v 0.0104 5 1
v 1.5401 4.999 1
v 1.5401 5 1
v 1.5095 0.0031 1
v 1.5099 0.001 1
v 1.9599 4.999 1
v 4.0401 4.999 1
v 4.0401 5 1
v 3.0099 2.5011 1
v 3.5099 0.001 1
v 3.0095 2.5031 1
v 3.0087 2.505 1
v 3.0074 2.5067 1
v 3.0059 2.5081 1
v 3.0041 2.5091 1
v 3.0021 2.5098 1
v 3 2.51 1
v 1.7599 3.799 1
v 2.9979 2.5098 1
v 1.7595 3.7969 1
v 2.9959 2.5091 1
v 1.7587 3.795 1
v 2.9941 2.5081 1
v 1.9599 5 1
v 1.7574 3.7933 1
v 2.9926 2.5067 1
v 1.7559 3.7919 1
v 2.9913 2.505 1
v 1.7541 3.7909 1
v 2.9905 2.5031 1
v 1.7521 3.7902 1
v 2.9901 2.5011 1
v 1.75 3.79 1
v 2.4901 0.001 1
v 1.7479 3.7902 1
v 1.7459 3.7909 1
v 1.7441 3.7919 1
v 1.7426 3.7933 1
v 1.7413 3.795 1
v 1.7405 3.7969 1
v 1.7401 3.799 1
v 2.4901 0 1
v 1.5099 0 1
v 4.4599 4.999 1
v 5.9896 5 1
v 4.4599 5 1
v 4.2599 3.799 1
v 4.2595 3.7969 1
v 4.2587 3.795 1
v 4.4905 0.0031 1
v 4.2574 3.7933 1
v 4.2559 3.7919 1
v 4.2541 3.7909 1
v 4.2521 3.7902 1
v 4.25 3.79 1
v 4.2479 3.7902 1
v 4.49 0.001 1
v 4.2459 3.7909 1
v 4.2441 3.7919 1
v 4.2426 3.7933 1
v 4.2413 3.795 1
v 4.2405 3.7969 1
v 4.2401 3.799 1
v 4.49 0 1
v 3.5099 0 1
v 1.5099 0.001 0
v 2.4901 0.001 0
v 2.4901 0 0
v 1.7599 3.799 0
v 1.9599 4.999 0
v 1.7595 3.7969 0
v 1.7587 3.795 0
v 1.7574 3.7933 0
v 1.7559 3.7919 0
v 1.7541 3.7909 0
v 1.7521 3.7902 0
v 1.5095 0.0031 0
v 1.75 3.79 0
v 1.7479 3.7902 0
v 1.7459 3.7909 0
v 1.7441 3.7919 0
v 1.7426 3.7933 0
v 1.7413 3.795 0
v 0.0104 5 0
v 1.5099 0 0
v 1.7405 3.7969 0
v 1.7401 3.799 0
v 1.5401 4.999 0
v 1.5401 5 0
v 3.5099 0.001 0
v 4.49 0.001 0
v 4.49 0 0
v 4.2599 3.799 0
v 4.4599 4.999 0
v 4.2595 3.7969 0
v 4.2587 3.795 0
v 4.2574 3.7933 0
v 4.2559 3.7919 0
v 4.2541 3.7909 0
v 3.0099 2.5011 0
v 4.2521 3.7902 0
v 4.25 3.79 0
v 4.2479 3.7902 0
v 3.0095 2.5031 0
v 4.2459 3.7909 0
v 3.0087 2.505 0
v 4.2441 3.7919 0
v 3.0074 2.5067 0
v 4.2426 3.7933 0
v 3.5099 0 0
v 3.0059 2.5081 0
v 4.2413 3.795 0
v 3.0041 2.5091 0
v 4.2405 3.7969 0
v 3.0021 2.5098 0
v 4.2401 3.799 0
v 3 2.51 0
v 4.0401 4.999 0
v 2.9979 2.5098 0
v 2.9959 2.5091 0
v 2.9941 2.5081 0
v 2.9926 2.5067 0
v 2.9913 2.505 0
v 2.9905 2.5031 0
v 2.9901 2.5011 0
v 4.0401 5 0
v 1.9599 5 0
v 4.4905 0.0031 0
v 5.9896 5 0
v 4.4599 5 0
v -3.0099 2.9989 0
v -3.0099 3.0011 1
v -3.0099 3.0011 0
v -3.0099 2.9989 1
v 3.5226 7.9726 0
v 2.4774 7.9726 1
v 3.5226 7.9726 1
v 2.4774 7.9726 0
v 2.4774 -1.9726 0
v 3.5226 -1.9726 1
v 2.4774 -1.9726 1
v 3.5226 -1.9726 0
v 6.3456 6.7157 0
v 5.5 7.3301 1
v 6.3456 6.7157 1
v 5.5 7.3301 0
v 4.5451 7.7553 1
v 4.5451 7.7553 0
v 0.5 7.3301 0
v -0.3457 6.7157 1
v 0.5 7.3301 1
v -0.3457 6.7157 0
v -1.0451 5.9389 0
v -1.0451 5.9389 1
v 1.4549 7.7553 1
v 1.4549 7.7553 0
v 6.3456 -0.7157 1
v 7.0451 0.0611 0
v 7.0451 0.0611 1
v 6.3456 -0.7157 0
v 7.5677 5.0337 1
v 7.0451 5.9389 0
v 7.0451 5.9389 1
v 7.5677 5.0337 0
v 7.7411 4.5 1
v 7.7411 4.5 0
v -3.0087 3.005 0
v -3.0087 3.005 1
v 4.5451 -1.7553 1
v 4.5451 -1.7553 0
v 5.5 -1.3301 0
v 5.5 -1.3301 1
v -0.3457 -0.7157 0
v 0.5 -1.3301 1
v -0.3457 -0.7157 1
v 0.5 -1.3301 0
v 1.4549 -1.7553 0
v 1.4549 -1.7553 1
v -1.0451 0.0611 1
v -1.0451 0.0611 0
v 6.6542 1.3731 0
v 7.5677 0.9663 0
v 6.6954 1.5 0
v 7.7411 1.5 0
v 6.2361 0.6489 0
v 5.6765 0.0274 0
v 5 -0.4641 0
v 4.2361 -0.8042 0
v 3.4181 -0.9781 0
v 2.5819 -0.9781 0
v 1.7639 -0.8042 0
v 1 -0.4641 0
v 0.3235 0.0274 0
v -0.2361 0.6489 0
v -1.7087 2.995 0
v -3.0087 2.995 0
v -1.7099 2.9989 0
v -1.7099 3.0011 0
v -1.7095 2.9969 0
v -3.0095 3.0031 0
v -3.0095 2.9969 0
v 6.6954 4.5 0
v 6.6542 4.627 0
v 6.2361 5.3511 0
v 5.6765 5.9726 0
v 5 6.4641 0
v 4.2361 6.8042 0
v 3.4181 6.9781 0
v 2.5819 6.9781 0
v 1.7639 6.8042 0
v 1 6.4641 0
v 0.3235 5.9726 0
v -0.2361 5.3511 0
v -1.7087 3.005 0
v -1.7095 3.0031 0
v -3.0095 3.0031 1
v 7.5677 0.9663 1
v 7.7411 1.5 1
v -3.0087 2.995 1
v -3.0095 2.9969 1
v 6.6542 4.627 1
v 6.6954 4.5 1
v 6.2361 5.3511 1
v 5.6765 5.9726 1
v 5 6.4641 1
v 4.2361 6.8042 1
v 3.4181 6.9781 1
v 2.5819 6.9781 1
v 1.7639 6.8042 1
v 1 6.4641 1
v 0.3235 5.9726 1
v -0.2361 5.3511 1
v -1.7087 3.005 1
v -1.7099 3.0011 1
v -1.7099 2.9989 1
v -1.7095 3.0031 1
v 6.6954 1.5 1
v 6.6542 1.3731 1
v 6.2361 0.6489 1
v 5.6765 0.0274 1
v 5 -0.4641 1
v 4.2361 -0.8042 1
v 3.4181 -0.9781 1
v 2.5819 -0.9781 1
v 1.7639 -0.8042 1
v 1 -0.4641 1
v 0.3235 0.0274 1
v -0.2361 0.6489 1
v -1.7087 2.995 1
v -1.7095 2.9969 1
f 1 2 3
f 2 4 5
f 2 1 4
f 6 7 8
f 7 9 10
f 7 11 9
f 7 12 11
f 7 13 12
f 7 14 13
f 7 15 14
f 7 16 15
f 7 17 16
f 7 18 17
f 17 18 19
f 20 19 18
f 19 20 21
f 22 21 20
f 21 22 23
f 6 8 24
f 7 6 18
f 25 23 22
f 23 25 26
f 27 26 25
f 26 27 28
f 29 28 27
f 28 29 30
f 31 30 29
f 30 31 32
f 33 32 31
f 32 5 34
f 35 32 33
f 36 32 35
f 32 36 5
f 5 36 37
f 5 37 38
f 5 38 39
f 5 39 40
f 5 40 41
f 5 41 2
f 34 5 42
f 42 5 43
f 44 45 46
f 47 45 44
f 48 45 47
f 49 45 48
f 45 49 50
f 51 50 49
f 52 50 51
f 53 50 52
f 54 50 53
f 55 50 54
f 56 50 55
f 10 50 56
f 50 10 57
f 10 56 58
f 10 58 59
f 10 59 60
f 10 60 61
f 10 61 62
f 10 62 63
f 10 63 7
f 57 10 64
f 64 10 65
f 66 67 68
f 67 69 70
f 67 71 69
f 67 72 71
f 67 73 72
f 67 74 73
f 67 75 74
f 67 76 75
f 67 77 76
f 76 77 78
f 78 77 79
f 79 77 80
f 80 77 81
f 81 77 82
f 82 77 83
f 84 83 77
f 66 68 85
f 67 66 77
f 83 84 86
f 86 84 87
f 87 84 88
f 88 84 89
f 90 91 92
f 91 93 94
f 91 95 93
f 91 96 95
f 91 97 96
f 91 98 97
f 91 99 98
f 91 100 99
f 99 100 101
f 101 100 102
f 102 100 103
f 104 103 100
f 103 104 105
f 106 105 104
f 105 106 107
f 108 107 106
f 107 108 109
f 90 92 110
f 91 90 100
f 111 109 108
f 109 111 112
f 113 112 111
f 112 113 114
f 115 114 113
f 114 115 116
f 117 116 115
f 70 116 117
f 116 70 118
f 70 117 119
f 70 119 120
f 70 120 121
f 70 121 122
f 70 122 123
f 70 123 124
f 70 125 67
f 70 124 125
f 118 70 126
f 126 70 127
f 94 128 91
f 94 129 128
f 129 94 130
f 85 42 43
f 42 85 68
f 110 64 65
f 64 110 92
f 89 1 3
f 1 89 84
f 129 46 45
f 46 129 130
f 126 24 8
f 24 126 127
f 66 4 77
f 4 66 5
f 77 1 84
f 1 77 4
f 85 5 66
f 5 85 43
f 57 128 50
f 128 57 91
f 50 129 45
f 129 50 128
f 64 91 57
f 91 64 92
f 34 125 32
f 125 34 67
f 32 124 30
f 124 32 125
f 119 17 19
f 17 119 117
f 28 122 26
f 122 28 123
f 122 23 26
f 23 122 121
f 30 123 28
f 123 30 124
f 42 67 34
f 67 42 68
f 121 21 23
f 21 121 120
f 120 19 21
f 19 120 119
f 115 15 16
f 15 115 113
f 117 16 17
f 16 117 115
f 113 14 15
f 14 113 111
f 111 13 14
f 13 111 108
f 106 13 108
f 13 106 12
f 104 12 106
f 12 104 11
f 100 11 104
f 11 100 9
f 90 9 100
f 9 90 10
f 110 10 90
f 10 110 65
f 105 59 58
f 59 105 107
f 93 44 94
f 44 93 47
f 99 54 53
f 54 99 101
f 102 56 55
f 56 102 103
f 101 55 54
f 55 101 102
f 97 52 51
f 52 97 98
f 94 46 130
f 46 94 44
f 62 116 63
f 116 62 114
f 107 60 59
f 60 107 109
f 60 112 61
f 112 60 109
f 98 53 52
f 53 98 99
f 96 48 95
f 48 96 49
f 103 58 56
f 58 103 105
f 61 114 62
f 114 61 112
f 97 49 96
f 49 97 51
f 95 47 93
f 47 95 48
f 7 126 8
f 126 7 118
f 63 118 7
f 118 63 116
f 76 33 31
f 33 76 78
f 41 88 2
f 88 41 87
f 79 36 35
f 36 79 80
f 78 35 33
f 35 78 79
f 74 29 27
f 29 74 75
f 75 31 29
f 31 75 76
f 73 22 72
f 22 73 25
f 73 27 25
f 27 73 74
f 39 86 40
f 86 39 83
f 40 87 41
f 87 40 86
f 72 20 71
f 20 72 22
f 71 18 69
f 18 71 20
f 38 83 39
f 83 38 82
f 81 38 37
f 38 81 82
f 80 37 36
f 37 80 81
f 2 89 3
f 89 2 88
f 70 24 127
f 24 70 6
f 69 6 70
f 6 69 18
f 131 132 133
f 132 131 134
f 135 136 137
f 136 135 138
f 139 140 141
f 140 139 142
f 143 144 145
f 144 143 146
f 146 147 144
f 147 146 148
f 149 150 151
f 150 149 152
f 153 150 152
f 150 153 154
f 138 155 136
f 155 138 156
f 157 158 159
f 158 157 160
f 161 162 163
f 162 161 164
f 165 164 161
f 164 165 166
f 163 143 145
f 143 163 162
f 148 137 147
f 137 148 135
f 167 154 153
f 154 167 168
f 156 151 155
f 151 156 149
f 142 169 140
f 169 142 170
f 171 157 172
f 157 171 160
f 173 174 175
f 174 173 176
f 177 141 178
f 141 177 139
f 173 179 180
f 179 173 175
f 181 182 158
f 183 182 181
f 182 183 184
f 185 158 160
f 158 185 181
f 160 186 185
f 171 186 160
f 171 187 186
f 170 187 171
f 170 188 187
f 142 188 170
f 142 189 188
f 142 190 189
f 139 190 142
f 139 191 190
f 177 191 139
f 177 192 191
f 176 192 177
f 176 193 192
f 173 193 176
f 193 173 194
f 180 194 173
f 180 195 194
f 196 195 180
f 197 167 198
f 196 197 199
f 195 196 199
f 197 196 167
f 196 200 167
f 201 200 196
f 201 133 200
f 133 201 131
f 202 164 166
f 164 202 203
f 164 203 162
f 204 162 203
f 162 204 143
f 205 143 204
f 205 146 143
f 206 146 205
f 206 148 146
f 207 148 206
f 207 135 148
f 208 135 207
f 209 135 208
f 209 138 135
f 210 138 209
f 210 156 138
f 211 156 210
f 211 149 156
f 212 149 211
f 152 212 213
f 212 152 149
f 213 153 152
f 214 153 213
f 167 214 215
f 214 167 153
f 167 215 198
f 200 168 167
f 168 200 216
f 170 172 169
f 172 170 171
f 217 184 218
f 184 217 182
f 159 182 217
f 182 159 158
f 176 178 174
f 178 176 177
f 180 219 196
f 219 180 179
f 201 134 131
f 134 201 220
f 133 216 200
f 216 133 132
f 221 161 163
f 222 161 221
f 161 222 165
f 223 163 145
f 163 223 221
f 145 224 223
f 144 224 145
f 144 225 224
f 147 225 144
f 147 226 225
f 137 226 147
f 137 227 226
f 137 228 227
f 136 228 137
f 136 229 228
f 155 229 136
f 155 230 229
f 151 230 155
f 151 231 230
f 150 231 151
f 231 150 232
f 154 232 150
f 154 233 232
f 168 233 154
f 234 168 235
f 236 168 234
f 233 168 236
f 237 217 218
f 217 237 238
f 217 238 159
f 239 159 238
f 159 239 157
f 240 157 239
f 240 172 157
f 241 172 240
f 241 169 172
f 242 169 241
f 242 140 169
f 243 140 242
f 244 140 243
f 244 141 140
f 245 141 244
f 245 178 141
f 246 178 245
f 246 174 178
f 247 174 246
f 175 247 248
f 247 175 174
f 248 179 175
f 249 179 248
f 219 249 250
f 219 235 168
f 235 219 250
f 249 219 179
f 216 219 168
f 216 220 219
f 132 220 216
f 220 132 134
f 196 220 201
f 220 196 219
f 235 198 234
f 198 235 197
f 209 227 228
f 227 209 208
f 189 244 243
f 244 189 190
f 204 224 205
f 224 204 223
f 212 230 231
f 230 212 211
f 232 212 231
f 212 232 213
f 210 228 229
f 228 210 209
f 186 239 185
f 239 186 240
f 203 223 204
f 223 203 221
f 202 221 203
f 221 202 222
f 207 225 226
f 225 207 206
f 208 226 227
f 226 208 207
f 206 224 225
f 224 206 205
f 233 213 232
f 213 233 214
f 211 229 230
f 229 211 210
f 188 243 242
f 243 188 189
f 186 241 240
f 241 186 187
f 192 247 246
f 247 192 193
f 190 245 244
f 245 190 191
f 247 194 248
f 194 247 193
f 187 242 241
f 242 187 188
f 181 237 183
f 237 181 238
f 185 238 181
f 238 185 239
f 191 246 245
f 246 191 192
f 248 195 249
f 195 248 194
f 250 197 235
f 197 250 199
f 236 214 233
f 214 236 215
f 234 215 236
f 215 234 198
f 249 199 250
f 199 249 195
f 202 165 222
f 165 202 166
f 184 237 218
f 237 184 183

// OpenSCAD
// left triangle 
module tri_left(where){
translate([where,3,0]){
rotate([0,0,90]){
triangle(1,1,0.01,1);
mirror([1,0,0]) triangle(1,1,0.01,1);

}
}
}


$fn = 30;
// bigger circle - smaller circle and move the centre -side cube

difference(){
 
    

difference(){
    // merge left triangle with the circle
    hull(){
   translate([3,3,0]) {cylinder(r=5,h=1);}
   tri_left(-2);
   }
   //merge inside left triangle with the circle
   hull(){
   translate([3,3,0]) {cylinder(r=4,h=1);}
   tri_left(-0.7);
   }
}

// side cube
translate([6.5,1.5,0]){cube([2.5,3,1]);}
}

//cube - triangle(origin) - triangle(non origin) - triangle(bottom) - triangle(top)
difference(){
difference(){
difference(){
difference(){
cube([6,5,1]);
  // rotate the right triangle 90 degree and mirror it
    mirror([1,0,0])rotate([0,0,90]){ triangle(5,1.5,0.01,1);} 

}
// 2nd triangle (non-origin)
 translate([6,0,0])rotate([0,0,90]){ triangle(5,1.5,0.01,1);} 
}
//call bottom triangle
bottom_triangle();
}
top_triangle();
}

// top triangles
module top_triangle(){
 //right one
gen_for_top(4.25);

//left one
mirror([1,0,0])
gen_for_top(-1.75);
}

// function to generate top triangle
module gen_for_top(where){
 translate([where,5,0]) {
rotate([0,0,-90]){ triangle(1.2,0.2,0.01,1);}
mirror([1,0,0])rotate([0,0,-90]){ triangle(1.2,0.2,0.01,1);}
}
}

//bottom triangle
module bottom_triangle(){
translate([3,0,0]) {
rotate([0,0,90]){ triangle(2.5,0.5,0.01,1);}
mirror([1,0,0])rotate([0,0,90]){ triangle(2.5,0.5,0.01,1);}
}
}
 
//generate  triangle
module triangle(a1,b1,r1,h1){
 
 hull(){
     cylinder(r=r1,h=h1);
     translate([a1,0,0])cylinder(r=r1,h=h1);
      translate([0,b1,0])cylinder(r=r1,h=h1);
 }
 
   
}
